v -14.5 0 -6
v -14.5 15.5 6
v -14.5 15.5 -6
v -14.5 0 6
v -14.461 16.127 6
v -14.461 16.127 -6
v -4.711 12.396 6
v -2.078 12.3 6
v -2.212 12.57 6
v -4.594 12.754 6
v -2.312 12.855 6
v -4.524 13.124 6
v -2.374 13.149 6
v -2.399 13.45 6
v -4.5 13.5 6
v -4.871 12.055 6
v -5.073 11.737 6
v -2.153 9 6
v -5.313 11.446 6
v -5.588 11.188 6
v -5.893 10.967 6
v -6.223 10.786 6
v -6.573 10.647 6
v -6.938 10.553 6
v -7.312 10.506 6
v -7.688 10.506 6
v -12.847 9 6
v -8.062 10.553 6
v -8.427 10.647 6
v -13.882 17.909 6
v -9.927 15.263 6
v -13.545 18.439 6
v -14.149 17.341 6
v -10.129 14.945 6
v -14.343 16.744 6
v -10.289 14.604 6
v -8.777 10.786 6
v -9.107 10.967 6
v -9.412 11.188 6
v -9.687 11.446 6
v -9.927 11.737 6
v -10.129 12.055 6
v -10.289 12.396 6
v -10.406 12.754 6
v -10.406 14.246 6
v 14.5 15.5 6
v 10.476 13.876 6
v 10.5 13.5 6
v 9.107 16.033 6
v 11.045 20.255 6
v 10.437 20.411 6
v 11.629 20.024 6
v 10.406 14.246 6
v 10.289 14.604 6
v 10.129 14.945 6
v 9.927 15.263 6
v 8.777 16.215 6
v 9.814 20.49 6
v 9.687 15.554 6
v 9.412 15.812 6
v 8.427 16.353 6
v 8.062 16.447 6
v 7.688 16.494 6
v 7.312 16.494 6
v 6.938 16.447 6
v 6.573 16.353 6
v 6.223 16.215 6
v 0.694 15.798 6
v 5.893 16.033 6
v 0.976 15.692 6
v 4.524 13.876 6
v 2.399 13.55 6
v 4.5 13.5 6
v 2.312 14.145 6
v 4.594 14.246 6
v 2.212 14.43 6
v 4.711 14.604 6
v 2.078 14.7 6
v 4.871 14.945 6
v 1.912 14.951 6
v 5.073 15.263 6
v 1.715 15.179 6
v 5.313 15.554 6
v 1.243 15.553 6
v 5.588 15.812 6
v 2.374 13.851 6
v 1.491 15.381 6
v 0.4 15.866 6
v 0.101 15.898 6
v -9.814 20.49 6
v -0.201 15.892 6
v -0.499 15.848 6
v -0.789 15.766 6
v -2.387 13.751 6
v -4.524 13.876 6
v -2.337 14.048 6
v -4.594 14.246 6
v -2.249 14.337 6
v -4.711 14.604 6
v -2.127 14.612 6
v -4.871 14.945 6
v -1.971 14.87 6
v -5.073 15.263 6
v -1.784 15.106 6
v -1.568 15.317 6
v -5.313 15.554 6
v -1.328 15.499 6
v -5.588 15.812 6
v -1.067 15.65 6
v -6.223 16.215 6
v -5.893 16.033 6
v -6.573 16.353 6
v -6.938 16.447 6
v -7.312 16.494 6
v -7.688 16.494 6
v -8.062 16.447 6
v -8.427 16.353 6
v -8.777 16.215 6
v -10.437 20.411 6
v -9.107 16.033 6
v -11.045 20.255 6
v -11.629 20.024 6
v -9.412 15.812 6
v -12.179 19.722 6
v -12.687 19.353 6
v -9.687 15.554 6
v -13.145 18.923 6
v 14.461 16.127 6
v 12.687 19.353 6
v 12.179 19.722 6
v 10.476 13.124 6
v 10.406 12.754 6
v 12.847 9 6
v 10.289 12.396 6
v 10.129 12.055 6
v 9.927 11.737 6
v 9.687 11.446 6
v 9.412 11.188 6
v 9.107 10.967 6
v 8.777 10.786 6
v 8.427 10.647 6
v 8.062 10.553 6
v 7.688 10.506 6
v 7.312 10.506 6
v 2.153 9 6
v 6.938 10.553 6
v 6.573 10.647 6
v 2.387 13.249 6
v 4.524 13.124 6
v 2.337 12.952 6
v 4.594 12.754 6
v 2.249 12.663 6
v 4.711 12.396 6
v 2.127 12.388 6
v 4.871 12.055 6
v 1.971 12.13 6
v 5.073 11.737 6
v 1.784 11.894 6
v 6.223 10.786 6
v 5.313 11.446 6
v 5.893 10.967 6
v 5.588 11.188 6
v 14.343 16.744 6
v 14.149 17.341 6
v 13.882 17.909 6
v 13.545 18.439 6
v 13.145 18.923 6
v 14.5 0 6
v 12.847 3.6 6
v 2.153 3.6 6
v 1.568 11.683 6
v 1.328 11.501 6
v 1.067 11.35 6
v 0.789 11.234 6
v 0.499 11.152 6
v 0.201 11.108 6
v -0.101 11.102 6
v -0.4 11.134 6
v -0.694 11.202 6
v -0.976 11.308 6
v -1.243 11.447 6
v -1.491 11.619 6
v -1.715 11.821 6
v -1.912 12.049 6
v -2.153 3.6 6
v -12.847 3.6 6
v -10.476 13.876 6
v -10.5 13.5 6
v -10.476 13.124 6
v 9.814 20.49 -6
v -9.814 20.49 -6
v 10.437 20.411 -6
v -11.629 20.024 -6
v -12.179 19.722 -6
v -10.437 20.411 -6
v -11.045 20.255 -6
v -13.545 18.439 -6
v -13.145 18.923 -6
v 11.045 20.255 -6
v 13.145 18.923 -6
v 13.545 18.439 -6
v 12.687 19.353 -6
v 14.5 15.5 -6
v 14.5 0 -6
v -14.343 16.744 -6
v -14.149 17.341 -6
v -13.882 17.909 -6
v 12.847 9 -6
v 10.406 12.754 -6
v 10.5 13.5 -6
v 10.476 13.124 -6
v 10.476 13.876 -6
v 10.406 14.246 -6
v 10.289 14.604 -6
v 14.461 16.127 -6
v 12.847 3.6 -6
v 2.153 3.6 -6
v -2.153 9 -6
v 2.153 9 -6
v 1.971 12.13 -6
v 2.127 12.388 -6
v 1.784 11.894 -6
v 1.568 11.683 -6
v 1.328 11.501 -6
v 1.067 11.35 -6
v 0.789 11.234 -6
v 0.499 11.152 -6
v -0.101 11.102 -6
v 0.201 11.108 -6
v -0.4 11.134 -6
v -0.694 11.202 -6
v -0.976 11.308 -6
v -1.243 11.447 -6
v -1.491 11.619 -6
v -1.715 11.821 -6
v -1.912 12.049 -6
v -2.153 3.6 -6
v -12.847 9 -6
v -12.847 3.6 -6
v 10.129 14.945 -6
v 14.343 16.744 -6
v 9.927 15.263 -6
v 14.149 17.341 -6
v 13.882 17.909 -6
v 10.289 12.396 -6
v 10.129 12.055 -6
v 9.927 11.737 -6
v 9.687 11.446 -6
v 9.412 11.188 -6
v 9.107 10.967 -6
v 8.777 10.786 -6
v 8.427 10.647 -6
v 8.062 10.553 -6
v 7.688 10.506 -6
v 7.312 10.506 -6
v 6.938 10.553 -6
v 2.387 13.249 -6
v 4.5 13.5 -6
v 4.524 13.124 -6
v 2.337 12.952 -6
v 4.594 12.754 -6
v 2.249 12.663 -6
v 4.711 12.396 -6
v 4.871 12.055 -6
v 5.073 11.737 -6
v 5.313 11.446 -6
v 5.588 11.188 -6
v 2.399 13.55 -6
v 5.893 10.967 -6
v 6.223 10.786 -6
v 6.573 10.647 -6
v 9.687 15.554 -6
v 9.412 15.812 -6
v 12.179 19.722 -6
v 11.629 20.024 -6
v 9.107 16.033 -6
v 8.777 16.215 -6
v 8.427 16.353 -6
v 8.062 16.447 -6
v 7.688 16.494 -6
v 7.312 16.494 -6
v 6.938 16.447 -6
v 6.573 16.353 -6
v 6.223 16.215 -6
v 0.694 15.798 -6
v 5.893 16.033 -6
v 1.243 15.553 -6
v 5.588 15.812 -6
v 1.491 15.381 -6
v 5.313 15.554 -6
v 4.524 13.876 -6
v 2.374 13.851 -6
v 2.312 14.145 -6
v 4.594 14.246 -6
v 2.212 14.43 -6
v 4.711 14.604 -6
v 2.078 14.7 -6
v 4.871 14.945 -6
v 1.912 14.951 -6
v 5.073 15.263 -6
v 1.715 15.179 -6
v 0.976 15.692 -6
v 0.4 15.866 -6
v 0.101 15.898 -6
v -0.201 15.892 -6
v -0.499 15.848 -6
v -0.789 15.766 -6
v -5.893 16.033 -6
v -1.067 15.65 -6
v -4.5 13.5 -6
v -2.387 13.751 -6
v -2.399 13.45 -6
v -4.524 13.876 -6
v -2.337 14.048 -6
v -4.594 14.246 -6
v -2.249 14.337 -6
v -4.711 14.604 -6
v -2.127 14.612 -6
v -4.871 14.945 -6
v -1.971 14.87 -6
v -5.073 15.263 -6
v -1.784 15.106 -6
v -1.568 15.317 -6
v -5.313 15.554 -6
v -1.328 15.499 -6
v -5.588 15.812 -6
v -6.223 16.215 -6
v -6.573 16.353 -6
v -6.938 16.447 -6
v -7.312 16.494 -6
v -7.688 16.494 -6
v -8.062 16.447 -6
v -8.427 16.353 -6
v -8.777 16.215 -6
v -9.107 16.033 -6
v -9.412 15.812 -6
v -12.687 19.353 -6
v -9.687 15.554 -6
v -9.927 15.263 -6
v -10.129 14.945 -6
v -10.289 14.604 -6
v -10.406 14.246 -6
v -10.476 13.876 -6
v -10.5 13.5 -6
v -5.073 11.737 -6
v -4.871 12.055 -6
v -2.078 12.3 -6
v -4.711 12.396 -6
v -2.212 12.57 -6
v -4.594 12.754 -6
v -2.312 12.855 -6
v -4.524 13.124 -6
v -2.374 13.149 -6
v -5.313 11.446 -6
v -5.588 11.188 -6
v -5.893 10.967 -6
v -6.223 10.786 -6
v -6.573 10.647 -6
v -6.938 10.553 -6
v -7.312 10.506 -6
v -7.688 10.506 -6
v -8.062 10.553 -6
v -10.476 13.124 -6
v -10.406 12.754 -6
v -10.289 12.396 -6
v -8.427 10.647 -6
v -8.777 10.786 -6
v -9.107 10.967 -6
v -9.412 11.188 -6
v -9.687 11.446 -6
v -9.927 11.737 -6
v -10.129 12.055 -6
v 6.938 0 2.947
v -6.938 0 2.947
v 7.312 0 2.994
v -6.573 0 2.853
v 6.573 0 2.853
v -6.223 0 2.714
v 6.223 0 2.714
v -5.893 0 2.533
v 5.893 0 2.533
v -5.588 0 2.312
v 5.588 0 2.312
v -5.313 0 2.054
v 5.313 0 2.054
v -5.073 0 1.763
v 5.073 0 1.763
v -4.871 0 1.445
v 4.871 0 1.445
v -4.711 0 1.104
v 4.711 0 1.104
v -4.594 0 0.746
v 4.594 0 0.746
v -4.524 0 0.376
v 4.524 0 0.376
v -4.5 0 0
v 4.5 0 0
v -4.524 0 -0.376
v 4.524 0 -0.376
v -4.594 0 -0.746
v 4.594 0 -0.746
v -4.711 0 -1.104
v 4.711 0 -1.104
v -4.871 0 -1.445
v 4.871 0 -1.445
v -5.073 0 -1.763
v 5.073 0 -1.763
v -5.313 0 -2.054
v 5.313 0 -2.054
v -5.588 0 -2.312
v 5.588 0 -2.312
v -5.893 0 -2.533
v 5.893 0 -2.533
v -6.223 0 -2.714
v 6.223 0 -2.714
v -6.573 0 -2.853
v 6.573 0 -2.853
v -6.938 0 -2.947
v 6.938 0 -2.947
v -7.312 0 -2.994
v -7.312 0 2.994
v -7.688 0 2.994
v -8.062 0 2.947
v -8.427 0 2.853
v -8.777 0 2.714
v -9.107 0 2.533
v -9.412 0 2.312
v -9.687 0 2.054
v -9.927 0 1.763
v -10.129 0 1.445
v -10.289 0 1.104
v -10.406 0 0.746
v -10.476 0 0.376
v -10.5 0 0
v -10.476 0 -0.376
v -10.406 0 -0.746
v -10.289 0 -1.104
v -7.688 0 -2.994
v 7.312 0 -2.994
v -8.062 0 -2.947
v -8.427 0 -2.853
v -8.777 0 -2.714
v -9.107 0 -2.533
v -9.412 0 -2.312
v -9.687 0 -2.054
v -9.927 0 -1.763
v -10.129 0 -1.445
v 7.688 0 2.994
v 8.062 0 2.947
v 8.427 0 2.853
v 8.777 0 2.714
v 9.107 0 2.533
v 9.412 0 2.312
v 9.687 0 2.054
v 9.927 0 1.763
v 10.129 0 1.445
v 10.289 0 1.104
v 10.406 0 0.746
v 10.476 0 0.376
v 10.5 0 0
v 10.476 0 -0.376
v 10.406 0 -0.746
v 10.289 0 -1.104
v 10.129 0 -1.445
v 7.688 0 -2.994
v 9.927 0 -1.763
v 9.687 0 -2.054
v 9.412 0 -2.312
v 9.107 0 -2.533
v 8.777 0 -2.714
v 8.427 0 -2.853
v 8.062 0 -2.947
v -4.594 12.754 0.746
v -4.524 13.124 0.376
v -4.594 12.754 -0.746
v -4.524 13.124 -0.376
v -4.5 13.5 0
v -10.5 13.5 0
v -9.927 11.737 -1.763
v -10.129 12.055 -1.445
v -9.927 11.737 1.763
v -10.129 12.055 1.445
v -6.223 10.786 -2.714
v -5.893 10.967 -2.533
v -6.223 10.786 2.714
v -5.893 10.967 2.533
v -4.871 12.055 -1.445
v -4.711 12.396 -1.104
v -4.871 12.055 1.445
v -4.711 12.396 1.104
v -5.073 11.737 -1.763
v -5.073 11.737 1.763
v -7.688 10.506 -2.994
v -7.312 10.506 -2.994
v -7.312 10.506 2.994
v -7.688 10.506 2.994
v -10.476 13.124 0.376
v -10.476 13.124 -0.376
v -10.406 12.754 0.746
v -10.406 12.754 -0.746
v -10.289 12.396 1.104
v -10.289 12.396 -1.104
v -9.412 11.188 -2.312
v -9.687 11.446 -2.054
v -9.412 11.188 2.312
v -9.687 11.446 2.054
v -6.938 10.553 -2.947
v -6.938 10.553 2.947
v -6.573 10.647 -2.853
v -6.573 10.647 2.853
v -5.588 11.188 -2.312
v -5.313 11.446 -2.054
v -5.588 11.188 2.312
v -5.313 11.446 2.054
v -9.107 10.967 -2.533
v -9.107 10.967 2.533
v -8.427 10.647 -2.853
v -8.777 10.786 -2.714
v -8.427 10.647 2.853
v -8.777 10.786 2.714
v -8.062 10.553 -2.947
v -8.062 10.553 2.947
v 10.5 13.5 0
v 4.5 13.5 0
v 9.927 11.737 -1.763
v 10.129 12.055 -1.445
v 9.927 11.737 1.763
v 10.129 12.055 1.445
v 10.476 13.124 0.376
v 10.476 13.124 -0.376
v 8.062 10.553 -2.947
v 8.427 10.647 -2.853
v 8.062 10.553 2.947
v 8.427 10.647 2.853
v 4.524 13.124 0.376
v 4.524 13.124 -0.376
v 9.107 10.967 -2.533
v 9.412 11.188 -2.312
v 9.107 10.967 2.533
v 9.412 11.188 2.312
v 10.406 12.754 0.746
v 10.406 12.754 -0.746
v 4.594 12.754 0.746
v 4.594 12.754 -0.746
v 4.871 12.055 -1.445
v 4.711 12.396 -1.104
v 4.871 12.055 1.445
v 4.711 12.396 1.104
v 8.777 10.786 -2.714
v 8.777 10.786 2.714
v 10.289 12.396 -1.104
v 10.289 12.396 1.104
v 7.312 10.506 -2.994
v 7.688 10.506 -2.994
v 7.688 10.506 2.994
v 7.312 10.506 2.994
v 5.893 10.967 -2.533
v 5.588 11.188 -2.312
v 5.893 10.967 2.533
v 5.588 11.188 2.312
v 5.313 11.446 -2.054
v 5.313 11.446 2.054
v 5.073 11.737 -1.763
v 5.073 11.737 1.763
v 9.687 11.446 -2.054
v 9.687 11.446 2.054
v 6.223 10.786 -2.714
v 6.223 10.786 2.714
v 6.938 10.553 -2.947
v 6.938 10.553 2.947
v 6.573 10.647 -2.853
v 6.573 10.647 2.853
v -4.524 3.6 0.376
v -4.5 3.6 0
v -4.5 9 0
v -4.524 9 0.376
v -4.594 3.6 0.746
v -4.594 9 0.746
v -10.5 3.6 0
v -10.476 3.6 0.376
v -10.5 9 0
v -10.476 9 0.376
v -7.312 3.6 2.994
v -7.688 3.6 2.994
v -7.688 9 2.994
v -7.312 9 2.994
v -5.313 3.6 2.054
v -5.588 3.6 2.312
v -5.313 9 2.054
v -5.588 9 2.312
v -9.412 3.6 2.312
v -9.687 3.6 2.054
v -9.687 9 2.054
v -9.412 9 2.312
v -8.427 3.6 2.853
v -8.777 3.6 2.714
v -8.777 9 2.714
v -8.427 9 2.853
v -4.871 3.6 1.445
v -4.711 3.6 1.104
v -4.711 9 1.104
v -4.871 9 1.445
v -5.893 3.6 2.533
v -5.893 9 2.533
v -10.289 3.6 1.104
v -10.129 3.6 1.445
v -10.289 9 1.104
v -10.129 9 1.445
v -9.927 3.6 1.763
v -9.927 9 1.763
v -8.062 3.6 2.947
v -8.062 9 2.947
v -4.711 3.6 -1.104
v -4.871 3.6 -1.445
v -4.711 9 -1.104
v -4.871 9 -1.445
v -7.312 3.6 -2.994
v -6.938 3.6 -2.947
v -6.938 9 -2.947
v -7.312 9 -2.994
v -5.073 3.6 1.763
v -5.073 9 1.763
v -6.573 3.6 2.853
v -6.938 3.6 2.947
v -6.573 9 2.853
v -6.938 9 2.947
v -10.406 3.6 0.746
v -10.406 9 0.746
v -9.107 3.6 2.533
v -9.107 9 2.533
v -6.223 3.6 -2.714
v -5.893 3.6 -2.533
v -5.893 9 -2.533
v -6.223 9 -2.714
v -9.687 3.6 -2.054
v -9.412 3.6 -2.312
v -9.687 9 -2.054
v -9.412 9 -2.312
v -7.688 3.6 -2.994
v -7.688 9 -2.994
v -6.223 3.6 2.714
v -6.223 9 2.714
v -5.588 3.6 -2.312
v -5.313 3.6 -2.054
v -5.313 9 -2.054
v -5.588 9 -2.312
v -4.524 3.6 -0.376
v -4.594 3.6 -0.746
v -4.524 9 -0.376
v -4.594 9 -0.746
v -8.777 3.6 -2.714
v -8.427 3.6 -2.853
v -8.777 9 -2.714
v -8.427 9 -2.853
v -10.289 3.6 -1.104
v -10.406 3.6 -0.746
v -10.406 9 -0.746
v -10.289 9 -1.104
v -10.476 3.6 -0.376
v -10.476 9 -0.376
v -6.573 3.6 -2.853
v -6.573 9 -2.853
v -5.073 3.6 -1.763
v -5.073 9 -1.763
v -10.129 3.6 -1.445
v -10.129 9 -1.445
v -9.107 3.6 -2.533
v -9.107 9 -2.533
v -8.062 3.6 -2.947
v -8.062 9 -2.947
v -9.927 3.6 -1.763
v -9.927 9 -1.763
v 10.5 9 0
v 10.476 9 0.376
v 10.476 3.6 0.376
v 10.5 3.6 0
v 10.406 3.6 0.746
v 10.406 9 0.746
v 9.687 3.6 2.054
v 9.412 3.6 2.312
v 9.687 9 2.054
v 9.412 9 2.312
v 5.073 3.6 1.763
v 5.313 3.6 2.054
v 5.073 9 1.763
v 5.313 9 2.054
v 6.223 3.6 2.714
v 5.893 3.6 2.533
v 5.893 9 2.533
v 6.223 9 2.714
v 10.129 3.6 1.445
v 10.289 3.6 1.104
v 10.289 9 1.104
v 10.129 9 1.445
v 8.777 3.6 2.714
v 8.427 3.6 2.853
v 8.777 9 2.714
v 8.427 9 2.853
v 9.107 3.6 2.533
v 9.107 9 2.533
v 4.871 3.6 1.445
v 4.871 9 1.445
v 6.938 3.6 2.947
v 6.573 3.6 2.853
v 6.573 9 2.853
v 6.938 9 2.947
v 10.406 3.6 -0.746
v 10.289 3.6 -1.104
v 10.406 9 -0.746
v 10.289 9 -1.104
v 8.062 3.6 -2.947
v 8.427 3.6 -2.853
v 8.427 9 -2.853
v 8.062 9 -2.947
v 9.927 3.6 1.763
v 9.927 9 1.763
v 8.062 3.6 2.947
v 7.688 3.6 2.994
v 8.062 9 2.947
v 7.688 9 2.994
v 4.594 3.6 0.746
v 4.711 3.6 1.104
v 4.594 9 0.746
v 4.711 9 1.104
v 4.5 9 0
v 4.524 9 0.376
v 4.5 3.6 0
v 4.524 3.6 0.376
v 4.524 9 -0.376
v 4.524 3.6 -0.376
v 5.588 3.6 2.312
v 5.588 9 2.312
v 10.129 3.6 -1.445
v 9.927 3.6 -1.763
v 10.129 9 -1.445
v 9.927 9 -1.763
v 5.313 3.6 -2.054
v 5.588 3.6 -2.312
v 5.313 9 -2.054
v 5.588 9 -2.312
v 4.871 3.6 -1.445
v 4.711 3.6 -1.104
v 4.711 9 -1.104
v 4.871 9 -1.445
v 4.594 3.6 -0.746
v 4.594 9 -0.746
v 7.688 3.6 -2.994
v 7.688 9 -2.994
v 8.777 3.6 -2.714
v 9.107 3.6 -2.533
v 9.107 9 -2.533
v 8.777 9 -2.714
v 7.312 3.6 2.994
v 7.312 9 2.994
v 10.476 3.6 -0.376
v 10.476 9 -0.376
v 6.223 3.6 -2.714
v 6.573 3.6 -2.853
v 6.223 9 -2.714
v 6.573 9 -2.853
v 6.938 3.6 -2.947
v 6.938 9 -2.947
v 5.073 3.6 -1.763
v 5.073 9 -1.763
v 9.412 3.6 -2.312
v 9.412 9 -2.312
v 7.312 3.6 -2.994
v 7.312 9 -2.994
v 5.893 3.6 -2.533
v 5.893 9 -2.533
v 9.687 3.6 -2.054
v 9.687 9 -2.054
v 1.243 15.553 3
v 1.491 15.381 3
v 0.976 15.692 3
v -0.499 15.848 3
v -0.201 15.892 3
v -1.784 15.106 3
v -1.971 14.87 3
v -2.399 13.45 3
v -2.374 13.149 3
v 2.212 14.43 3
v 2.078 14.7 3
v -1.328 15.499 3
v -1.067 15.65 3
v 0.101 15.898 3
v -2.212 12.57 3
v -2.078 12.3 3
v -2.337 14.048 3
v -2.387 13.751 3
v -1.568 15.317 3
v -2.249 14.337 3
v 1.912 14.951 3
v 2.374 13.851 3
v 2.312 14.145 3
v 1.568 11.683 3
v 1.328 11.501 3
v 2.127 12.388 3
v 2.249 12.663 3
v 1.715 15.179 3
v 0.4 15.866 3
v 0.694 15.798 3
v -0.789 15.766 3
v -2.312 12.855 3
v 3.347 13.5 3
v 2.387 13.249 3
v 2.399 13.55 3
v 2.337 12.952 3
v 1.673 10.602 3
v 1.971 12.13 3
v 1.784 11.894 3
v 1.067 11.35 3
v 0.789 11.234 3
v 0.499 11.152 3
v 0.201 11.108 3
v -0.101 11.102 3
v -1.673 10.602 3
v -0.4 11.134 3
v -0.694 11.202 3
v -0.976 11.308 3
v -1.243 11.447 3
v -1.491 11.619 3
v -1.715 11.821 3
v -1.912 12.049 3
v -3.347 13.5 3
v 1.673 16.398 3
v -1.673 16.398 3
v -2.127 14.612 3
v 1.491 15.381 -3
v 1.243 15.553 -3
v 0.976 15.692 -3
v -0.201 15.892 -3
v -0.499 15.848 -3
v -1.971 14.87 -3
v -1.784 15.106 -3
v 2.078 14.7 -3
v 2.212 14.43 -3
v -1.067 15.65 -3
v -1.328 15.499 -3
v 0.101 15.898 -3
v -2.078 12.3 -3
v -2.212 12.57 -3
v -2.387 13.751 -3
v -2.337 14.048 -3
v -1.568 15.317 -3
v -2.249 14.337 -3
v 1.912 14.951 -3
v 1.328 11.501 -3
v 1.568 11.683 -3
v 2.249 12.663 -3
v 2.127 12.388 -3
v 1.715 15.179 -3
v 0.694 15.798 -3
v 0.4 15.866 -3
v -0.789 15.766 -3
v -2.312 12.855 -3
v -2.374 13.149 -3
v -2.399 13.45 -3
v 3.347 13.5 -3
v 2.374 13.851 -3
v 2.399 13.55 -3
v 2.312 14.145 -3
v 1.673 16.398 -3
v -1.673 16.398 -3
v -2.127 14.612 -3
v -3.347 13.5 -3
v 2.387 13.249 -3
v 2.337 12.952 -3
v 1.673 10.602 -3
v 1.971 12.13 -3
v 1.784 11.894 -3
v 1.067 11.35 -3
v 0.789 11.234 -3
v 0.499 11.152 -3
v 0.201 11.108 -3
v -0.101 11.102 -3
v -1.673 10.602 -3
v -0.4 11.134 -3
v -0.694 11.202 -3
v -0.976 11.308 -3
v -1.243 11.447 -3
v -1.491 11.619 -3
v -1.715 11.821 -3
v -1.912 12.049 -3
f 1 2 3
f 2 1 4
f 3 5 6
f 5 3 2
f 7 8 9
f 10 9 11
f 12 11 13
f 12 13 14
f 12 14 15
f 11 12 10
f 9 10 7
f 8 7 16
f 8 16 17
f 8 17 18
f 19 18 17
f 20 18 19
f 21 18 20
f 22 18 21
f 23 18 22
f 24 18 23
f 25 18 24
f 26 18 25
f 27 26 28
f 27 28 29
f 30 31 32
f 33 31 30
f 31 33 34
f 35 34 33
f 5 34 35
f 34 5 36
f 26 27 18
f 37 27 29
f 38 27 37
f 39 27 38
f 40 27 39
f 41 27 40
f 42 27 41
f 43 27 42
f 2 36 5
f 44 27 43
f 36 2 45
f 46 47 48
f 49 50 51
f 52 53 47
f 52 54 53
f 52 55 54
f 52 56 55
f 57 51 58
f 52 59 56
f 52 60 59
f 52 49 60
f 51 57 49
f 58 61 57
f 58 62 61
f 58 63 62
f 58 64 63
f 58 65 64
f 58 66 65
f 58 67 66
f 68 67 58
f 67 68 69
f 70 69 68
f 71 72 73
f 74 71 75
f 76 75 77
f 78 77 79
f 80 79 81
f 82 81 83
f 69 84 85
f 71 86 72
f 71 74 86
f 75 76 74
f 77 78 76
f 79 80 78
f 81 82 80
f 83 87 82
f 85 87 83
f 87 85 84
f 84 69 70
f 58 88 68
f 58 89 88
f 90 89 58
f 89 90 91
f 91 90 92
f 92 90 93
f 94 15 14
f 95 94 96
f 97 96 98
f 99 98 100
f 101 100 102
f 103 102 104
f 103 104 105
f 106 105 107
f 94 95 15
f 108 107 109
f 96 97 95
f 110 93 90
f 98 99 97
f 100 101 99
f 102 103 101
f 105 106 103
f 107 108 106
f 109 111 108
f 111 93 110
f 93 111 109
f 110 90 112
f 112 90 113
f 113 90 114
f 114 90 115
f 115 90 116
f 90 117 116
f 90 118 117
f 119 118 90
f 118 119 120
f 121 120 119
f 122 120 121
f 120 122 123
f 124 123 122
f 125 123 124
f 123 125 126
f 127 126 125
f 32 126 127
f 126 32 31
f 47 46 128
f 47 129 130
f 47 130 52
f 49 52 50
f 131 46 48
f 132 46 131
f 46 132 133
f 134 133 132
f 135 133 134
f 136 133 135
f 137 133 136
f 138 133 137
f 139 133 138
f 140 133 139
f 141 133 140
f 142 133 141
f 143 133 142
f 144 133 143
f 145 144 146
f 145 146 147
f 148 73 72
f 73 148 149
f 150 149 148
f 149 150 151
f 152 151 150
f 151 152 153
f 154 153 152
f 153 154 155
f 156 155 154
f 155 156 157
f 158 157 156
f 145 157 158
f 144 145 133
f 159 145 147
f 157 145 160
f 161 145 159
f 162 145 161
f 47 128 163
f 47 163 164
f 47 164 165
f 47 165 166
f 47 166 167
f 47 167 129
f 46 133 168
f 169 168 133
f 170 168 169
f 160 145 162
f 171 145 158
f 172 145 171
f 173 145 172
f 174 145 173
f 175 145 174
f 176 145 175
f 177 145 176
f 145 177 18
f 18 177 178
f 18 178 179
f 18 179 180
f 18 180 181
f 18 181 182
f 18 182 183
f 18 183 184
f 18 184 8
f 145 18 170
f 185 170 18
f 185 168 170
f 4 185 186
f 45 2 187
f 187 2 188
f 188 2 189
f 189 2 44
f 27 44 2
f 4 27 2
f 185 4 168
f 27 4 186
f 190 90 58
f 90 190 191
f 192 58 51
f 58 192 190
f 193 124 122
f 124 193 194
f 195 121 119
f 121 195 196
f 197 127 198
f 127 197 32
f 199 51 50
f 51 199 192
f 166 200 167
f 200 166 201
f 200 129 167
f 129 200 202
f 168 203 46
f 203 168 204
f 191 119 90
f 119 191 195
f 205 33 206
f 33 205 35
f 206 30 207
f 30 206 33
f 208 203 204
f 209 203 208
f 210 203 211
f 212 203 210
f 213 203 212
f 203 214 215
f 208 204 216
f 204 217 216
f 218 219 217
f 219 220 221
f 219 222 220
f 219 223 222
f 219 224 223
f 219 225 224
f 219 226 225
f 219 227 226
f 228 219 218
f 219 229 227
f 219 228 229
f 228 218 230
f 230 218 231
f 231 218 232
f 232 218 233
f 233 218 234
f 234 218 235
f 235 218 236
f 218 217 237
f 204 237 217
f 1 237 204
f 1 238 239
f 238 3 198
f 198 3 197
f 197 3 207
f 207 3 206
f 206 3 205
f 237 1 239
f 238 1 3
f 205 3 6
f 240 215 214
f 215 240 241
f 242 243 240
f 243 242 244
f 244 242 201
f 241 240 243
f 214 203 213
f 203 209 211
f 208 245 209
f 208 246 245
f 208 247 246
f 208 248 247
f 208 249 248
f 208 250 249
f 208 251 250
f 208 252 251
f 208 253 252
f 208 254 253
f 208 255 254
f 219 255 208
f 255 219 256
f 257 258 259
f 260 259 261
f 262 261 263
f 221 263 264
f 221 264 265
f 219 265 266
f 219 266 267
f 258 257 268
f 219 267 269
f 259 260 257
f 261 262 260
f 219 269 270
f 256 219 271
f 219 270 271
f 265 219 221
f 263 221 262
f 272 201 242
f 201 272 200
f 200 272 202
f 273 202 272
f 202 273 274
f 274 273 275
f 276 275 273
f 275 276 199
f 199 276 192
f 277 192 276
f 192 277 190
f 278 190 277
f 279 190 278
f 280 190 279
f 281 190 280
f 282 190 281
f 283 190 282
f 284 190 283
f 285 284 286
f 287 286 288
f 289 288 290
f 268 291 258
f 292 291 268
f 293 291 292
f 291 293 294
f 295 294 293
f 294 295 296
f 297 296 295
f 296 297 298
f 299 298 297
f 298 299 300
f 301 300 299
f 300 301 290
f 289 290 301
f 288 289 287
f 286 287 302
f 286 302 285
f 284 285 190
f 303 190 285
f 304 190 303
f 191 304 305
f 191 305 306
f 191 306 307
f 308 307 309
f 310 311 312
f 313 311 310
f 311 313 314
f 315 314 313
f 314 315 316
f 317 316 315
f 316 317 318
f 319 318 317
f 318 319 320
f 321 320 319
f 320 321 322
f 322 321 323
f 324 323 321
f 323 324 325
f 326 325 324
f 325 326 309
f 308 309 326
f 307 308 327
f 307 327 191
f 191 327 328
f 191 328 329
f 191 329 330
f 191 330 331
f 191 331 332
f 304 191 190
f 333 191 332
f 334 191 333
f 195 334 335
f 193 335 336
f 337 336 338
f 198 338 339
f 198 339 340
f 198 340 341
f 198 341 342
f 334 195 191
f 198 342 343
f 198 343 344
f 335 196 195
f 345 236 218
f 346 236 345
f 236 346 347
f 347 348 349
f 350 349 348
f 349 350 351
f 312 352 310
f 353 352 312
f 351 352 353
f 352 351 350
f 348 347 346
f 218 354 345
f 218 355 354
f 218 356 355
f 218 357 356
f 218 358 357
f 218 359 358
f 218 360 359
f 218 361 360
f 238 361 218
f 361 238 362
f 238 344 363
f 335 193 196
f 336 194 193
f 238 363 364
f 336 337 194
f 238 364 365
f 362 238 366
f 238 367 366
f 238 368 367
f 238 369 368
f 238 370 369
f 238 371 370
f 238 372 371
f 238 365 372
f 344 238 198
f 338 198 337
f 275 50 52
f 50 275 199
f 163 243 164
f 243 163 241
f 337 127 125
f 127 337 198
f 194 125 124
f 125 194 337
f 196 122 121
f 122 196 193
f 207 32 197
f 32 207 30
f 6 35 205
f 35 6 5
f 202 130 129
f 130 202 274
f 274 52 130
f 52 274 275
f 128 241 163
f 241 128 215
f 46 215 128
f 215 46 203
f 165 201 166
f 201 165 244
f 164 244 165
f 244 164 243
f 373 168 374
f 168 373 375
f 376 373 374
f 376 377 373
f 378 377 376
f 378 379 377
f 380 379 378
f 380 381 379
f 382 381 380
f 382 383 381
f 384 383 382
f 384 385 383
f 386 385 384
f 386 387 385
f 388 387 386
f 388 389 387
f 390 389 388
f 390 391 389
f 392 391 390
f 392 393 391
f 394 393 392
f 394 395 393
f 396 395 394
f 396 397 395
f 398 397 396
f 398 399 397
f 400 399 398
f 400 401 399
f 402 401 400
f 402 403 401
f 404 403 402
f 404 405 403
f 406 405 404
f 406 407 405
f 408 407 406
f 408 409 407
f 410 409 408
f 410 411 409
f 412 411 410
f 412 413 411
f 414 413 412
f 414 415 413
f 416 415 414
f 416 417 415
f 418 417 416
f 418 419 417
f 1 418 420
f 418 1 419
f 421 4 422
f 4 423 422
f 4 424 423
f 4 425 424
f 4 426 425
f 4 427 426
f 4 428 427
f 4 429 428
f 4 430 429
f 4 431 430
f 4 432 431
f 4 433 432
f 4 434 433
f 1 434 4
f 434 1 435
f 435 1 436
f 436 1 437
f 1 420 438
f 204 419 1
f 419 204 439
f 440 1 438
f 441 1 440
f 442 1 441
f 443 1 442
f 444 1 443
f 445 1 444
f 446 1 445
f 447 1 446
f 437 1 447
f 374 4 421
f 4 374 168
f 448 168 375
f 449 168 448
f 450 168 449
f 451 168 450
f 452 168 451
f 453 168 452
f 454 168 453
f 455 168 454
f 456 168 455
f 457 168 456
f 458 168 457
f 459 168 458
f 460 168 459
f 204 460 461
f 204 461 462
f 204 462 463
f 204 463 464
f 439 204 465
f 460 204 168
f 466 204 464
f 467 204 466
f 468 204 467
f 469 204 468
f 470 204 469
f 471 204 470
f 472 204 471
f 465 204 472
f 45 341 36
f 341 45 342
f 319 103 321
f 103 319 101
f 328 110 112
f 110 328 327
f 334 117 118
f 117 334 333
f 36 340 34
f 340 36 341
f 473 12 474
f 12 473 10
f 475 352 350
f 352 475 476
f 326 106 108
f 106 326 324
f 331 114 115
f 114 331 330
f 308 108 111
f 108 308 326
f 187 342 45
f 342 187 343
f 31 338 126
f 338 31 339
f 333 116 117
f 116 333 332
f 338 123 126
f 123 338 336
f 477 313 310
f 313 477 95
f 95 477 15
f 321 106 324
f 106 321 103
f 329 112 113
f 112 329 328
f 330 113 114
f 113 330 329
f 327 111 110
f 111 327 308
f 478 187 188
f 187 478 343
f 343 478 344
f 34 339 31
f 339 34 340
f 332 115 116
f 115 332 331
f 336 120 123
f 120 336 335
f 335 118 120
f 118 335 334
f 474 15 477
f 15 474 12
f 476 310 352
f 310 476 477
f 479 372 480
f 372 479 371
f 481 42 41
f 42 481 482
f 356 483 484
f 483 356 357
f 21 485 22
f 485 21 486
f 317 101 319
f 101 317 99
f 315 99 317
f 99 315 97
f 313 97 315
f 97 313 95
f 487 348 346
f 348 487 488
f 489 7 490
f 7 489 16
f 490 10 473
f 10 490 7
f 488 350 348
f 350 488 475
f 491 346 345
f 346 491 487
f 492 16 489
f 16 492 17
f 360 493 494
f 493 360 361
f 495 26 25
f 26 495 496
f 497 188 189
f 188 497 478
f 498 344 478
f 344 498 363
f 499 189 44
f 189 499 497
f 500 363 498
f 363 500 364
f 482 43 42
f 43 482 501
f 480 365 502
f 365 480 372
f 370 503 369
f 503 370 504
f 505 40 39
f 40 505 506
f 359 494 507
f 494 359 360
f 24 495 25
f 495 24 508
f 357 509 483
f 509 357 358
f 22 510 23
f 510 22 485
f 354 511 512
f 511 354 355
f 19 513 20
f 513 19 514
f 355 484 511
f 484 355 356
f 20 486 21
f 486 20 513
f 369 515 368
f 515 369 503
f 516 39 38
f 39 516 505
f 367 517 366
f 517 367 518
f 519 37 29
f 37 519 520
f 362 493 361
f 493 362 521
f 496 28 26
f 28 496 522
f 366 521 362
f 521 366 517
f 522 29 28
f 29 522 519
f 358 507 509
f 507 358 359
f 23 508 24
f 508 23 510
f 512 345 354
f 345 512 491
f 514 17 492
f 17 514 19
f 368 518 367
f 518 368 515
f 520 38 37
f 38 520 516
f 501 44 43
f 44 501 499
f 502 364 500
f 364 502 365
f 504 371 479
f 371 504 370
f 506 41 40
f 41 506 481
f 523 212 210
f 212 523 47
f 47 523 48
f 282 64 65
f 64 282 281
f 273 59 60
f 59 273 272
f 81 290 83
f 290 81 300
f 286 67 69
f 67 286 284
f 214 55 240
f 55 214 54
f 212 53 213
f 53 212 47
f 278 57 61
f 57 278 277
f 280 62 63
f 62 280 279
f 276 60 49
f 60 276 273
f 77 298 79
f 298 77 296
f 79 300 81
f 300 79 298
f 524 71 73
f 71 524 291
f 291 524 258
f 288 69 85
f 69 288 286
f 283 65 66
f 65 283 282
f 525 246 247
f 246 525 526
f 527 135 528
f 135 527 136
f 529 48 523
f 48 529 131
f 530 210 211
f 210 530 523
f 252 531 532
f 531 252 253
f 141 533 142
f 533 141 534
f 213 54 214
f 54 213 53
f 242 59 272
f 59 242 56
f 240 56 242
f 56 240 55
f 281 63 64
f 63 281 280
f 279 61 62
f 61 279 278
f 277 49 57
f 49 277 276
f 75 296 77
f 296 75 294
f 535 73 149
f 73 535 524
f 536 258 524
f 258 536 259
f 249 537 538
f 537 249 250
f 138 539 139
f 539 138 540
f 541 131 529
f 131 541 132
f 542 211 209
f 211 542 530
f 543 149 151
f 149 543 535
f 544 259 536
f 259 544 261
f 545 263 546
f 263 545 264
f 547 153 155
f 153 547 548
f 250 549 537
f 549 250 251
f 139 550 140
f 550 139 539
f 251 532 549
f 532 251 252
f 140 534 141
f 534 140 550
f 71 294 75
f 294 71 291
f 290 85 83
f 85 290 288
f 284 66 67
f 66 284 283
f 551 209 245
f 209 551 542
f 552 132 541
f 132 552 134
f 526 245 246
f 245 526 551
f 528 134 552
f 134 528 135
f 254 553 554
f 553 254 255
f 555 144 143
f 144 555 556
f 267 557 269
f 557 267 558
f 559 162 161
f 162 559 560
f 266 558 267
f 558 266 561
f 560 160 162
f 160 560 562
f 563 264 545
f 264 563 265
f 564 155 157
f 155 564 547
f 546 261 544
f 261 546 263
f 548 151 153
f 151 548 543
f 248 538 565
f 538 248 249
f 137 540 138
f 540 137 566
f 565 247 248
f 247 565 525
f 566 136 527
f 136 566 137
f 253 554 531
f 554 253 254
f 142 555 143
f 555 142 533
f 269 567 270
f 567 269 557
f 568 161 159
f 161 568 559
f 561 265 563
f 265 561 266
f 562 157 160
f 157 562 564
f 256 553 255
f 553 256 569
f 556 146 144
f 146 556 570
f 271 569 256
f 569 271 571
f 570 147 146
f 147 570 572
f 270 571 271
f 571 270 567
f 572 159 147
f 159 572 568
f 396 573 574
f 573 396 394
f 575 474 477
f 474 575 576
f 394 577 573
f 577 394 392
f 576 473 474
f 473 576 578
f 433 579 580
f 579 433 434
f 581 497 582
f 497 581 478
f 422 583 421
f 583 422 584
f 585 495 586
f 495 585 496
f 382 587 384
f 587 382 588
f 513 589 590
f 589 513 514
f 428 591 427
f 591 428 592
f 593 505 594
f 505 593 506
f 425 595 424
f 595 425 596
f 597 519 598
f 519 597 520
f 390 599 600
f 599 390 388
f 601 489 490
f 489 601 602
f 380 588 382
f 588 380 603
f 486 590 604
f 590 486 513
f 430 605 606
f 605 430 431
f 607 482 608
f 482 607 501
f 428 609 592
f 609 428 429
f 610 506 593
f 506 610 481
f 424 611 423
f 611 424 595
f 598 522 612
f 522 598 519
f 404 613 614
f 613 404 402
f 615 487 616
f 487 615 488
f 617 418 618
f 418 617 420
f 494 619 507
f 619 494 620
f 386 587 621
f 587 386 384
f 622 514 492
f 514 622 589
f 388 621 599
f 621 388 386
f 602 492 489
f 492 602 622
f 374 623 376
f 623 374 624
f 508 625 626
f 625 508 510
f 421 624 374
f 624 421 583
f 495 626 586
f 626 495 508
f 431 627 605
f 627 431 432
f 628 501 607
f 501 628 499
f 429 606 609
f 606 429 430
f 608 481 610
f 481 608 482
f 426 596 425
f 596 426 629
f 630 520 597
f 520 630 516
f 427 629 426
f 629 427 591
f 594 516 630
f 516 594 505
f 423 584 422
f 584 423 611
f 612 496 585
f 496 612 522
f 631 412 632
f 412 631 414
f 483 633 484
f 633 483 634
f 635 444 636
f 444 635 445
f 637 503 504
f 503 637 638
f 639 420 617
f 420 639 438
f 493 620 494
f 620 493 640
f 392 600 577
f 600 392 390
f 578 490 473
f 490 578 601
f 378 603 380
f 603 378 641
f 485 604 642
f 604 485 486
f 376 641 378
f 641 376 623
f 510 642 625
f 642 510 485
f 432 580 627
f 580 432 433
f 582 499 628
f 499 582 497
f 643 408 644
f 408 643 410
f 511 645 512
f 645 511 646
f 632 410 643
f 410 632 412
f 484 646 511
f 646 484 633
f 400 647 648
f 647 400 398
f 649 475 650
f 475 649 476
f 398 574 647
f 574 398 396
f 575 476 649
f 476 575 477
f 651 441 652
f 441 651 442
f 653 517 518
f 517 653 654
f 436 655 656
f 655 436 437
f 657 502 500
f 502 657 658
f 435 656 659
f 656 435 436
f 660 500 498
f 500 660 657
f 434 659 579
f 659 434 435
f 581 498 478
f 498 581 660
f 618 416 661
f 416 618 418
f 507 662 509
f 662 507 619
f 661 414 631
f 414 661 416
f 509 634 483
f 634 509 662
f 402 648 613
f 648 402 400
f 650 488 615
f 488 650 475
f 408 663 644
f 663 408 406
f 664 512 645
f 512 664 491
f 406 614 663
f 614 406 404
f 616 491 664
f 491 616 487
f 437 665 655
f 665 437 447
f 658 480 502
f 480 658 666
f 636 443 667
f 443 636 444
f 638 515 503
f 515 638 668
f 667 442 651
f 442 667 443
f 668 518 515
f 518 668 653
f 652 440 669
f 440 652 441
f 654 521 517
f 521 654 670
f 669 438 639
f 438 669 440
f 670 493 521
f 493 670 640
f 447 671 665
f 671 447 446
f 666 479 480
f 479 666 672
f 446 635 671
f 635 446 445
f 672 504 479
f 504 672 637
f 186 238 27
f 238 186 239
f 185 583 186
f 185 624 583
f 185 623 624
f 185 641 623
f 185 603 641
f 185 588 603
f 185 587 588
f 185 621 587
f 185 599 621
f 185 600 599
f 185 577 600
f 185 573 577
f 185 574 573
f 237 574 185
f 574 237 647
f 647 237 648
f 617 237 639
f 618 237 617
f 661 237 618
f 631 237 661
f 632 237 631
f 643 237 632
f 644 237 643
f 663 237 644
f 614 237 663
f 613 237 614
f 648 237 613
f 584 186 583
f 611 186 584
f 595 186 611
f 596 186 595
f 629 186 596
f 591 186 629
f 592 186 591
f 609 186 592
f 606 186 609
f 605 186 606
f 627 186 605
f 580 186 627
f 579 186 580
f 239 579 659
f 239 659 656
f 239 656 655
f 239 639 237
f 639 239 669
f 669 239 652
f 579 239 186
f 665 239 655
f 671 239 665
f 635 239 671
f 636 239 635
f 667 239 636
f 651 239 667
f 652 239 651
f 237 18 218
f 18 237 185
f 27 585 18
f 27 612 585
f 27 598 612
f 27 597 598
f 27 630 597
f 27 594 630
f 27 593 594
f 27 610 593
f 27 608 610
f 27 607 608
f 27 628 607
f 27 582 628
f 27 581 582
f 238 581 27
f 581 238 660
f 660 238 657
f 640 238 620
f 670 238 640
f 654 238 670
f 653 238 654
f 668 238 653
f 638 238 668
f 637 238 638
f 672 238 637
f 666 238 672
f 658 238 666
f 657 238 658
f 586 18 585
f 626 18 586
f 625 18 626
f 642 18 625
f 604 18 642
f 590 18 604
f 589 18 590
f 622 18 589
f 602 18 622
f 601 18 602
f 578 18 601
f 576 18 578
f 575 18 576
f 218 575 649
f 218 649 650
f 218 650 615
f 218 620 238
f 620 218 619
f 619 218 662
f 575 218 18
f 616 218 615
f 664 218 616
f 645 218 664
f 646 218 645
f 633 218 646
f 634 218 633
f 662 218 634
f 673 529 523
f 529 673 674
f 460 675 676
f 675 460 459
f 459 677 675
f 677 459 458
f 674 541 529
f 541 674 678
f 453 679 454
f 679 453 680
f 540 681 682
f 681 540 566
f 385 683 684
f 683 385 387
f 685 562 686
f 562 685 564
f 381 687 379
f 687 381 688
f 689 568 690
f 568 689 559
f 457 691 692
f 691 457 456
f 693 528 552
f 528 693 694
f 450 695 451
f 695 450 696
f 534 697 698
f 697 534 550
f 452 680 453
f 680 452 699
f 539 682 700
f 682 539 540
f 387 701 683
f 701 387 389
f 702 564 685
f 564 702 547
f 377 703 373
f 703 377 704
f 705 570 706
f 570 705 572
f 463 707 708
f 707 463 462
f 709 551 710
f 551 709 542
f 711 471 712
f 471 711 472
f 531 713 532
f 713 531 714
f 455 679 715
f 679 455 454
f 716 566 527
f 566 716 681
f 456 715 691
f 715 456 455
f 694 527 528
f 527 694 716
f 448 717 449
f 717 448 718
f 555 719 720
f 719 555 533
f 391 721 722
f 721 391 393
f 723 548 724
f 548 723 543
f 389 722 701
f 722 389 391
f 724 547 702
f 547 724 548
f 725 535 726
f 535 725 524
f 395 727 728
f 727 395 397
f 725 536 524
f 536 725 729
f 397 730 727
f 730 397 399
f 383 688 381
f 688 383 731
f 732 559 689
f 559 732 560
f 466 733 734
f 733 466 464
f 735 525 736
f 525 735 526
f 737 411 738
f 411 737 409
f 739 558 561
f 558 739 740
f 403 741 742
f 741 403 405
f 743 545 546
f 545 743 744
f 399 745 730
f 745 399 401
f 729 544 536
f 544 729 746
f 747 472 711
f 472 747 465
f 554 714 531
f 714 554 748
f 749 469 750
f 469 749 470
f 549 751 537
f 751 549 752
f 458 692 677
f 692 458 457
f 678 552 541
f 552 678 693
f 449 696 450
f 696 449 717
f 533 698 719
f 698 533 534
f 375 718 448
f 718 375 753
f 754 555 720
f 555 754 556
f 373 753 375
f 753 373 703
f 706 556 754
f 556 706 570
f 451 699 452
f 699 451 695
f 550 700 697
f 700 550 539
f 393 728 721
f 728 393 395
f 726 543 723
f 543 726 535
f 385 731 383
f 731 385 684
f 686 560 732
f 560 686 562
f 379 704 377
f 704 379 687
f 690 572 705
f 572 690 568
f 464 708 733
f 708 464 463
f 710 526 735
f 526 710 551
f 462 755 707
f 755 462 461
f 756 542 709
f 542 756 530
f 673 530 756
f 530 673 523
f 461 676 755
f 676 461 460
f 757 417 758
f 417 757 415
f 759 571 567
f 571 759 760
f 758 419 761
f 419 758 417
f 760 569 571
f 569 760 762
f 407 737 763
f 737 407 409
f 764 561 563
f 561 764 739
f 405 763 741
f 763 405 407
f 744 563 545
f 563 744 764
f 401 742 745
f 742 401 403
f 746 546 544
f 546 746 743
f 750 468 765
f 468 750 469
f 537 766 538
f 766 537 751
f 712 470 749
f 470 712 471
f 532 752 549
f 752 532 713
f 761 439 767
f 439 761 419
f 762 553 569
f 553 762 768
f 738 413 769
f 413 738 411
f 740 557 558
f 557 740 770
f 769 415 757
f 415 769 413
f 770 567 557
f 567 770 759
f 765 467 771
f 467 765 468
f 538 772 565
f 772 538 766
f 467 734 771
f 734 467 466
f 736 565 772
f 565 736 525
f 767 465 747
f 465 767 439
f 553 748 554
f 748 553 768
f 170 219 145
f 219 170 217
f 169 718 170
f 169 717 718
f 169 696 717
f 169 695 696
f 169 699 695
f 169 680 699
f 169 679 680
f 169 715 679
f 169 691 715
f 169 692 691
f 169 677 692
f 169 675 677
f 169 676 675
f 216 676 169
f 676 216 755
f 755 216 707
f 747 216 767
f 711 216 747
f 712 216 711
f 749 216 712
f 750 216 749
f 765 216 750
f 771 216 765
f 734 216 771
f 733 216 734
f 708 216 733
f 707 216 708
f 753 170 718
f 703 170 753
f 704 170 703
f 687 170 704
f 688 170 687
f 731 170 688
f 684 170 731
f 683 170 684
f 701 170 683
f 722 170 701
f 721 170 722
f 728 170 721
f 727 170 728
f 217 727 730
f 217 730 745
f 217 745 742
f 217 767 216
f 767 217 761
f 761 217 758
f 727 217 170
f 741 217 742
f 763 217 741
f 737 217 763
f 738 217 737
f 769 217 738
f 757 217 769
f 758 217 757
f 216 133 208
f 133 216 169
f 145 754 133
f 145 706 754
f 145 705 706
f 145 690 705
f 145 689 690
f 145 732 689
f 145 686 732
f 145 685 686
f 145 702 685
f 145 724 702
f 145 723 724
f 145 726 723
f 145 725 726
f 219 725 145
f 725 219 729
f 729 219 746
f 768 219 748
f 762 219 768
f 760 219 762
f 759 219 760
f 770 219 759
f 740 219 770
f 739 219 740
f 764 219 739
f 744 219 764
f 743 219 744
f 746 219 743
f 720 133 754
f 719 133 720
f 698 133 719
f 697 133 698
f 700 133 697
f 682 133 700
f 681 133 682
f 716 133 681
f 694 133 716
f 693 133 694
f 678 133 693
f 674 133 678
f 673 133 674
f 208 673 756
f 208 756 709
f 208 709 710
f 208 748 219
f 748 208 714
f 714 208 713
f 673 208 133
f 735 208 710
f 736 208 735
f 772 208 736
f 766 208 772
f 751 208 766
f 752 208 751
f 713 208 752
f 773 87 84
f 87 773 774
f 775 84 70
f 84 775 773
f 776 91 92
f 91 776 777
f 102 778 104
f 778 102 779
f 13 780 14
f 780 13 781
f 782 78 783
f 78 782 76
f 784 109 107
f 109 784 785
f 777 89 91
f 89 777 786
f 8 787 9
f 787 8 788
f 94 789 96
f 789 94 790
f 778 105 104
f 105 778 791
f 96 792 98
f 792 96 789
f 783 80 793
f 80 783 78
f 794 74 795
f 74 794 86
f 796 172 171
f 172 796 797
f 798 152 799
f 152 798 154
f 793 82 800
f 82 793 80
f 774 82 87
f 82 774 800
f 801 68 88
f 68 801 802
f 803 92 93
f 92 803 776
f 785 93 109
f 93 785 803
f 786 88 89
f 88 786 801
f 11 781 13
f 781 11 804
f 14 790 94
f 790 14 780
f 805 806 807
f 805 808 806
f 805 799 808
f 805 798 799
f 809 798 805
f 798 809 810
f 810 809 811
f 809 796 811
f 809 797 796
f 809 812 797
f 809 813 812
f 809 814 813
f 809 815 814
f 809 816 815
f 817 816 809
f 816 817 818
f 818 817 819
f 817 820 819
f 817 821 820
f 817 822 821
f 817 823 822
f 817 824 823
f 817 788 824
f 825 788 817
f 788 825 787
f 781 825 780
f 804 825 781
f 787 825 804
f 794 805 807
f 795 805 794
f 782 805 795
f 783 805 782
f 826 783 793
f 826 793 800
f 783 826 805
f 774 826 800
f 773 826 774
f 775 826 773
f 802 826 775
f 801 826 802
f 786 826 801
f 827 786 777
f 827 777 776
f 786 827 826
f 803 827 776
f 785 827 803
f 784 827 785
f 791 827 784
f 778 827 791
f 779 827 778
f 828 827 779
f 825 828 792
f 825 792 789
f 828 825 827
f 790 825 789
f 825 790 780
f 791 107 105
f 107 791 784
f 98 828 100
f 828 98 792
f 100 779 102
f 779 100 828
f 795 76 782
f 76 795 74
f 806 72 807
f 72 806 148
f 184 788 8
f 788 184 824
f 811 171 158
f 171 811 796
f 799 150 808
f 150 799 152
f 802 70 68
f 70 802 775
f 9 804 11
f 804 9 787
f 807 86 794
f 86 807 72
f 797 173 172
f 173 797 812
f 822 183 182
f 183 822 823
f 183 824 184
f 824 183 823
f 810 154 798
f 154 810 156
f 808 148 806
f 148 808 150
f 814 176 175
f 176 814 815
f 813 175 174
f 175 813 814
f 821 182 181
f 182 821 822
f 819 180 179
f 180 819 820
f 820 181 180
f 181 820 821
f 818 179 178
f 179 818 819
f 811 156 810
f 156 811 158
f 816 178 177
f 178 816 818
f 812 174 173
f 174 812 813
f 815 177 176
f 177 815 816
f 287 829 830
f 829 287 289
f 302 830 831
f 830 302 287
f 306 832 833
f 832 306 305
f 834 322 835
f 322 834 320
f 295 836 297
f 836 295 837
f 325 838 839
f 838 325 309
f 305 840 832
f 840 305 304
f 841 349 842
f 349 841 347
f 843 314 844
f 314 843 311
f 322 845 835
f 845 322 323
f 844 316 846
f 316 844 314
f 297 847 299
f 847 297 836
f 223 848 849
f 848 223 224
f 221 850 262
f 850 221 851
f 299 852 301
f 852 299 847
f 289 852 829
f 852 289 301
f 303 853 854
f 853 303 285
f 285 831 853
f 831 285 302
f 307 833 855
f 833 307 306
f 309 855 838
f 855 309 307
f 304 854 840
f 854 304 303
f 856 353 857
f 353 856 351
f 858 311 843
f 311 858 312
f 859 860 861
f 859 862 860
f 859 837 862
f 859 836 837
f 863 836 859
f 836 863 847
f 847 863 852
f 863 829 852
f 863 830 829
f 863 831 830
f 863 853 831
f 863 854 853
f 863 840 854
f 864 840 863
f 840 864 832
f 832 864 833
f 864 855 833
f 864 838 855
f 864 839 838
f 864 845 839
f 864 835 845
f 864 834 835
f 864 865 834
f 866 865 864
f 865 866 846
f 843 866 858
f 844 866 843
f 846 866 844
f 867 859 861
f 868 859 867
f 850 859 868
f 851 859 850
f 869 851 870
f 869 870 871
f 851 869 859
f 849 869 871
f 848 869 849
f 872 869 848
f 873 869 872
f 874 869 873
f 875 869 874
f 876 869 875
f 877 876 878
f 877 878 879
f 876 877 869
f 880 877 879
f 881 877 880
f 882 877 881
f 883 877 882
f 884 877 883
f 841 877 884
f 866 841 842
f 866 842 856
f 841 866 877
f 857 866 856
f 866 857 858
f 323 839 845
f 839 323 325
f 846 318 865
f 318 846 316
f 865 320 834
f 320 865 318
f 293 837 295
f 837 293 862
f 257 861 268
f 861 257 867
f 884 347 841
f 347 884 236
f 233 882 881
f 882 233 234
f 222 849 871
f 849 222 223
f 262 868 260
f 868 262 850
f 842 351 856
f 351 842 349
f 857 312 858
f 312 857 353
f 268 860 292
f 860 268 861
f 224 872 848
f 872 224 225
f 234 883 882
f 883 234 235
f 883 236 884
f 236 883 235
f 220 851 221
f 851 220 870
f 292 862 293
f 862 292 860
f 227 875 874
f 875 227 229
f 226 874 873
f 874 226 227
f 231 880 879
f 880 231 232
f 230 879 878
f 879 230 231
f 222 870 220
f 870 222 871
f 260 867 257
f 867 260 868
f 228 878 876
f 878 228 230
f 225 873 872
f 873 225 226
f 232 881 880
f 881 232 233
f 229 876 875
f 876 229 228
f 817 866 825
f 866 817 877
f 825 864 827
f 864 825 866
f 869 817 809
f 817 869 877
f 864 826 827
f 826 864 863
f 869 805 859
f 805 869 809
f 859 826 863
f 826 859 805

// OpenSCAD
$fn = 50;


difference() {
	union() {
		translate(v = [0, 13.5000000000, -6.0000000000]) {
			rotate(a = [0, 0, 0]) {
				hull() {
					translate(v = [-9.5000000000, 2.0000000000, 0]) {
						rotate(a = [0, 0, 0]) {
							translate(v = [0, 0, 0]) {
								rotate(a = [0, 0, 0]) {
									cylinder(h = 12, r = 5);
								}
							}
						}
					}
					translate(v = [9.5000000000, 2.0000000000, 0]) {
						rotate(a = [0, 0, 0]) {
							translate(v = [0, 0, 0]) {
								rotate(a = [0, 0, 0]) {
									cylinder(h = 12, r = 5);
								}
							}
						}
					}
					translate(v = [-9.5000000000, -2.0000000000, 0]) {
						rotate(a = [0, 0, 0]) {
							translate(v = [0, 0, 0]) {
								rotate(a = [0, 0, 0]) {
									cylinder(h = 12, r = 5);
								}
							}
						}
					}
					translate(v = [9.5000000000, -2.0000000000, 0]) {
						rotate(a = [0, 0, 0]) {
							translate(v = [0, 0, 0]) {
								rotate(a = [0, 0, 0]) {
									cylinder(h = 12, r = 5);
								}
							}
						}
					}
				}
			}
		}
		translate(v = [-14.5000000000, 0, -6.0000000000]) {
			rotate(a = [0, 0, 0]) {
				cube(size = [29, 13.5000000000, 12]);
			}
		}
	}
	union() {
		translate(v = [-7.5000000000, 13.5000000000, -6.0000000000]) {
			rotate(a = [0, 0, 0]) {
				translate(v = [0, 0, -50]) {
					rotate(a = [0, 0, 0]) {
						cylinder(h = 100, r = 3.0000000000);
					}
				}
			}
		}
		translate(v = [7.5000000000, 13.5000000000, -6.0000000000]) {
			rotate(a = [0, 0, 0]) {
				translate(v = [0, 0, -50]) {
					rotate(a = [0, 0, 0]) {
						cylinder(h = 100, r = 3.0000000000);
					}
				}
			}
		}
		translate(v = [-7.5000000000, 13.5000000000, -6.0000000000]) {
			rotate(a = [0, 0, 0]) {
				translate(v = [0, 0, -50]) {
					rotate(a = [0, 0, 0]) {
						cylinder(h = 100, r = 1.5000000000);
					}
				}
			}
		}
		translate(v = [0.0000000000, 13.5000000000, -6.0000000000]) {
			rotate(a = [0, 0, 0]) {
				translate(v = [0, 0, -50]) {
					rotate(a = [0, 0, 0]) {
						cylinder(h = 100, r = 1.5000000000);
					}
				}
			}
		}
		translate(v = [7.5000000000, 13.5000000000, -6.0000000000]) {
			rotate(a = [0, 0, 0]) {
				translate(v = [0, 0, -50]) {
					rotate(a = [0, 0, 0]) {
						cylinder(h = 100, r = 1.5000000000);
					}
				}
			}
		}
		translate(v = [-7.5000000000, 13.5000000000, 0]) {
			rotate(a = [90, 0, 0]) {
				cylinder(h = 13.5000000000, r = 3.0000000000);
			}
		}
		translate(v = [-12.8466204506, 9, -25]) {
			rotate(a = [90, 0, 0]) {
				cube(size = [10.6932409012, 100, 5.4000000000]);
			}
		}
		translate(v = [7.5000000000, 13.5000000000, 0]) {
			rotate(a = [90, 0, 0]) {
				cylinder(h = 13.5000000000, r = 3.0000000000);
			}
		}
		translate(v = [2.1533795494, 9, -25]) {
			rotate(a = [90, 0, 0]) {
				cube(size = [10.6932409012, 100, 5.4000000000]);
			}
		}
		translate(v = [0.0000000000, 13.5000000000, 3.0000000000]) {
			rotate(a = [0, 0, 30.0000000000]) {
				cylinder(h = 3, r1 = 2.4000000000, r2 = 2.4000000000);
			}
		}
		translate(v = [0.0000000000, 13.5000000000, -6.0000000000]) {
			rotate(a = [0, 0, 30.0000000000]) {
				cylinder(h = 3, r1 = 2.4000000000, r2 = 2.4000000000);
			}
		}
		translate(v = [0.0000000000, 13.5000000000, -3.0000000000]) {
			rotate(a = [0, 0, 30.0000000000]) {
				cylinder(h = 6, r = 1.5000000000);
			}
		}
		translate(v = [0.0000000000, 13.5000000000, -3.0000000000]) {
			rotate(a = [0, 0, 30.0000000000]) {
				translate(v = [0, 0, 0]) {
					rotate(a = [0, 0, 30.0000000000]) {
						linear_extrude(height = 6) {
							polygon(points = [[3.3466000000, 0.0000000000], [1.6733000000, 2.8982406163], [-1.6733000000, 2.8982406163], [-3.3466000000, 0.0000000000], [-1.6733000000, -2.8982406163], [1.6733000000, -2.8982406163]]);
						}
					}
				}
			}
		}
		translate(v = [0.0000000000, 13.5000000000, -6.0000000000]) {
			rotate(a = [0, 0, 30.0000000000]) {
				cylinder(h = 12, r = 1.5000000000);
			}
		}
	}
}
